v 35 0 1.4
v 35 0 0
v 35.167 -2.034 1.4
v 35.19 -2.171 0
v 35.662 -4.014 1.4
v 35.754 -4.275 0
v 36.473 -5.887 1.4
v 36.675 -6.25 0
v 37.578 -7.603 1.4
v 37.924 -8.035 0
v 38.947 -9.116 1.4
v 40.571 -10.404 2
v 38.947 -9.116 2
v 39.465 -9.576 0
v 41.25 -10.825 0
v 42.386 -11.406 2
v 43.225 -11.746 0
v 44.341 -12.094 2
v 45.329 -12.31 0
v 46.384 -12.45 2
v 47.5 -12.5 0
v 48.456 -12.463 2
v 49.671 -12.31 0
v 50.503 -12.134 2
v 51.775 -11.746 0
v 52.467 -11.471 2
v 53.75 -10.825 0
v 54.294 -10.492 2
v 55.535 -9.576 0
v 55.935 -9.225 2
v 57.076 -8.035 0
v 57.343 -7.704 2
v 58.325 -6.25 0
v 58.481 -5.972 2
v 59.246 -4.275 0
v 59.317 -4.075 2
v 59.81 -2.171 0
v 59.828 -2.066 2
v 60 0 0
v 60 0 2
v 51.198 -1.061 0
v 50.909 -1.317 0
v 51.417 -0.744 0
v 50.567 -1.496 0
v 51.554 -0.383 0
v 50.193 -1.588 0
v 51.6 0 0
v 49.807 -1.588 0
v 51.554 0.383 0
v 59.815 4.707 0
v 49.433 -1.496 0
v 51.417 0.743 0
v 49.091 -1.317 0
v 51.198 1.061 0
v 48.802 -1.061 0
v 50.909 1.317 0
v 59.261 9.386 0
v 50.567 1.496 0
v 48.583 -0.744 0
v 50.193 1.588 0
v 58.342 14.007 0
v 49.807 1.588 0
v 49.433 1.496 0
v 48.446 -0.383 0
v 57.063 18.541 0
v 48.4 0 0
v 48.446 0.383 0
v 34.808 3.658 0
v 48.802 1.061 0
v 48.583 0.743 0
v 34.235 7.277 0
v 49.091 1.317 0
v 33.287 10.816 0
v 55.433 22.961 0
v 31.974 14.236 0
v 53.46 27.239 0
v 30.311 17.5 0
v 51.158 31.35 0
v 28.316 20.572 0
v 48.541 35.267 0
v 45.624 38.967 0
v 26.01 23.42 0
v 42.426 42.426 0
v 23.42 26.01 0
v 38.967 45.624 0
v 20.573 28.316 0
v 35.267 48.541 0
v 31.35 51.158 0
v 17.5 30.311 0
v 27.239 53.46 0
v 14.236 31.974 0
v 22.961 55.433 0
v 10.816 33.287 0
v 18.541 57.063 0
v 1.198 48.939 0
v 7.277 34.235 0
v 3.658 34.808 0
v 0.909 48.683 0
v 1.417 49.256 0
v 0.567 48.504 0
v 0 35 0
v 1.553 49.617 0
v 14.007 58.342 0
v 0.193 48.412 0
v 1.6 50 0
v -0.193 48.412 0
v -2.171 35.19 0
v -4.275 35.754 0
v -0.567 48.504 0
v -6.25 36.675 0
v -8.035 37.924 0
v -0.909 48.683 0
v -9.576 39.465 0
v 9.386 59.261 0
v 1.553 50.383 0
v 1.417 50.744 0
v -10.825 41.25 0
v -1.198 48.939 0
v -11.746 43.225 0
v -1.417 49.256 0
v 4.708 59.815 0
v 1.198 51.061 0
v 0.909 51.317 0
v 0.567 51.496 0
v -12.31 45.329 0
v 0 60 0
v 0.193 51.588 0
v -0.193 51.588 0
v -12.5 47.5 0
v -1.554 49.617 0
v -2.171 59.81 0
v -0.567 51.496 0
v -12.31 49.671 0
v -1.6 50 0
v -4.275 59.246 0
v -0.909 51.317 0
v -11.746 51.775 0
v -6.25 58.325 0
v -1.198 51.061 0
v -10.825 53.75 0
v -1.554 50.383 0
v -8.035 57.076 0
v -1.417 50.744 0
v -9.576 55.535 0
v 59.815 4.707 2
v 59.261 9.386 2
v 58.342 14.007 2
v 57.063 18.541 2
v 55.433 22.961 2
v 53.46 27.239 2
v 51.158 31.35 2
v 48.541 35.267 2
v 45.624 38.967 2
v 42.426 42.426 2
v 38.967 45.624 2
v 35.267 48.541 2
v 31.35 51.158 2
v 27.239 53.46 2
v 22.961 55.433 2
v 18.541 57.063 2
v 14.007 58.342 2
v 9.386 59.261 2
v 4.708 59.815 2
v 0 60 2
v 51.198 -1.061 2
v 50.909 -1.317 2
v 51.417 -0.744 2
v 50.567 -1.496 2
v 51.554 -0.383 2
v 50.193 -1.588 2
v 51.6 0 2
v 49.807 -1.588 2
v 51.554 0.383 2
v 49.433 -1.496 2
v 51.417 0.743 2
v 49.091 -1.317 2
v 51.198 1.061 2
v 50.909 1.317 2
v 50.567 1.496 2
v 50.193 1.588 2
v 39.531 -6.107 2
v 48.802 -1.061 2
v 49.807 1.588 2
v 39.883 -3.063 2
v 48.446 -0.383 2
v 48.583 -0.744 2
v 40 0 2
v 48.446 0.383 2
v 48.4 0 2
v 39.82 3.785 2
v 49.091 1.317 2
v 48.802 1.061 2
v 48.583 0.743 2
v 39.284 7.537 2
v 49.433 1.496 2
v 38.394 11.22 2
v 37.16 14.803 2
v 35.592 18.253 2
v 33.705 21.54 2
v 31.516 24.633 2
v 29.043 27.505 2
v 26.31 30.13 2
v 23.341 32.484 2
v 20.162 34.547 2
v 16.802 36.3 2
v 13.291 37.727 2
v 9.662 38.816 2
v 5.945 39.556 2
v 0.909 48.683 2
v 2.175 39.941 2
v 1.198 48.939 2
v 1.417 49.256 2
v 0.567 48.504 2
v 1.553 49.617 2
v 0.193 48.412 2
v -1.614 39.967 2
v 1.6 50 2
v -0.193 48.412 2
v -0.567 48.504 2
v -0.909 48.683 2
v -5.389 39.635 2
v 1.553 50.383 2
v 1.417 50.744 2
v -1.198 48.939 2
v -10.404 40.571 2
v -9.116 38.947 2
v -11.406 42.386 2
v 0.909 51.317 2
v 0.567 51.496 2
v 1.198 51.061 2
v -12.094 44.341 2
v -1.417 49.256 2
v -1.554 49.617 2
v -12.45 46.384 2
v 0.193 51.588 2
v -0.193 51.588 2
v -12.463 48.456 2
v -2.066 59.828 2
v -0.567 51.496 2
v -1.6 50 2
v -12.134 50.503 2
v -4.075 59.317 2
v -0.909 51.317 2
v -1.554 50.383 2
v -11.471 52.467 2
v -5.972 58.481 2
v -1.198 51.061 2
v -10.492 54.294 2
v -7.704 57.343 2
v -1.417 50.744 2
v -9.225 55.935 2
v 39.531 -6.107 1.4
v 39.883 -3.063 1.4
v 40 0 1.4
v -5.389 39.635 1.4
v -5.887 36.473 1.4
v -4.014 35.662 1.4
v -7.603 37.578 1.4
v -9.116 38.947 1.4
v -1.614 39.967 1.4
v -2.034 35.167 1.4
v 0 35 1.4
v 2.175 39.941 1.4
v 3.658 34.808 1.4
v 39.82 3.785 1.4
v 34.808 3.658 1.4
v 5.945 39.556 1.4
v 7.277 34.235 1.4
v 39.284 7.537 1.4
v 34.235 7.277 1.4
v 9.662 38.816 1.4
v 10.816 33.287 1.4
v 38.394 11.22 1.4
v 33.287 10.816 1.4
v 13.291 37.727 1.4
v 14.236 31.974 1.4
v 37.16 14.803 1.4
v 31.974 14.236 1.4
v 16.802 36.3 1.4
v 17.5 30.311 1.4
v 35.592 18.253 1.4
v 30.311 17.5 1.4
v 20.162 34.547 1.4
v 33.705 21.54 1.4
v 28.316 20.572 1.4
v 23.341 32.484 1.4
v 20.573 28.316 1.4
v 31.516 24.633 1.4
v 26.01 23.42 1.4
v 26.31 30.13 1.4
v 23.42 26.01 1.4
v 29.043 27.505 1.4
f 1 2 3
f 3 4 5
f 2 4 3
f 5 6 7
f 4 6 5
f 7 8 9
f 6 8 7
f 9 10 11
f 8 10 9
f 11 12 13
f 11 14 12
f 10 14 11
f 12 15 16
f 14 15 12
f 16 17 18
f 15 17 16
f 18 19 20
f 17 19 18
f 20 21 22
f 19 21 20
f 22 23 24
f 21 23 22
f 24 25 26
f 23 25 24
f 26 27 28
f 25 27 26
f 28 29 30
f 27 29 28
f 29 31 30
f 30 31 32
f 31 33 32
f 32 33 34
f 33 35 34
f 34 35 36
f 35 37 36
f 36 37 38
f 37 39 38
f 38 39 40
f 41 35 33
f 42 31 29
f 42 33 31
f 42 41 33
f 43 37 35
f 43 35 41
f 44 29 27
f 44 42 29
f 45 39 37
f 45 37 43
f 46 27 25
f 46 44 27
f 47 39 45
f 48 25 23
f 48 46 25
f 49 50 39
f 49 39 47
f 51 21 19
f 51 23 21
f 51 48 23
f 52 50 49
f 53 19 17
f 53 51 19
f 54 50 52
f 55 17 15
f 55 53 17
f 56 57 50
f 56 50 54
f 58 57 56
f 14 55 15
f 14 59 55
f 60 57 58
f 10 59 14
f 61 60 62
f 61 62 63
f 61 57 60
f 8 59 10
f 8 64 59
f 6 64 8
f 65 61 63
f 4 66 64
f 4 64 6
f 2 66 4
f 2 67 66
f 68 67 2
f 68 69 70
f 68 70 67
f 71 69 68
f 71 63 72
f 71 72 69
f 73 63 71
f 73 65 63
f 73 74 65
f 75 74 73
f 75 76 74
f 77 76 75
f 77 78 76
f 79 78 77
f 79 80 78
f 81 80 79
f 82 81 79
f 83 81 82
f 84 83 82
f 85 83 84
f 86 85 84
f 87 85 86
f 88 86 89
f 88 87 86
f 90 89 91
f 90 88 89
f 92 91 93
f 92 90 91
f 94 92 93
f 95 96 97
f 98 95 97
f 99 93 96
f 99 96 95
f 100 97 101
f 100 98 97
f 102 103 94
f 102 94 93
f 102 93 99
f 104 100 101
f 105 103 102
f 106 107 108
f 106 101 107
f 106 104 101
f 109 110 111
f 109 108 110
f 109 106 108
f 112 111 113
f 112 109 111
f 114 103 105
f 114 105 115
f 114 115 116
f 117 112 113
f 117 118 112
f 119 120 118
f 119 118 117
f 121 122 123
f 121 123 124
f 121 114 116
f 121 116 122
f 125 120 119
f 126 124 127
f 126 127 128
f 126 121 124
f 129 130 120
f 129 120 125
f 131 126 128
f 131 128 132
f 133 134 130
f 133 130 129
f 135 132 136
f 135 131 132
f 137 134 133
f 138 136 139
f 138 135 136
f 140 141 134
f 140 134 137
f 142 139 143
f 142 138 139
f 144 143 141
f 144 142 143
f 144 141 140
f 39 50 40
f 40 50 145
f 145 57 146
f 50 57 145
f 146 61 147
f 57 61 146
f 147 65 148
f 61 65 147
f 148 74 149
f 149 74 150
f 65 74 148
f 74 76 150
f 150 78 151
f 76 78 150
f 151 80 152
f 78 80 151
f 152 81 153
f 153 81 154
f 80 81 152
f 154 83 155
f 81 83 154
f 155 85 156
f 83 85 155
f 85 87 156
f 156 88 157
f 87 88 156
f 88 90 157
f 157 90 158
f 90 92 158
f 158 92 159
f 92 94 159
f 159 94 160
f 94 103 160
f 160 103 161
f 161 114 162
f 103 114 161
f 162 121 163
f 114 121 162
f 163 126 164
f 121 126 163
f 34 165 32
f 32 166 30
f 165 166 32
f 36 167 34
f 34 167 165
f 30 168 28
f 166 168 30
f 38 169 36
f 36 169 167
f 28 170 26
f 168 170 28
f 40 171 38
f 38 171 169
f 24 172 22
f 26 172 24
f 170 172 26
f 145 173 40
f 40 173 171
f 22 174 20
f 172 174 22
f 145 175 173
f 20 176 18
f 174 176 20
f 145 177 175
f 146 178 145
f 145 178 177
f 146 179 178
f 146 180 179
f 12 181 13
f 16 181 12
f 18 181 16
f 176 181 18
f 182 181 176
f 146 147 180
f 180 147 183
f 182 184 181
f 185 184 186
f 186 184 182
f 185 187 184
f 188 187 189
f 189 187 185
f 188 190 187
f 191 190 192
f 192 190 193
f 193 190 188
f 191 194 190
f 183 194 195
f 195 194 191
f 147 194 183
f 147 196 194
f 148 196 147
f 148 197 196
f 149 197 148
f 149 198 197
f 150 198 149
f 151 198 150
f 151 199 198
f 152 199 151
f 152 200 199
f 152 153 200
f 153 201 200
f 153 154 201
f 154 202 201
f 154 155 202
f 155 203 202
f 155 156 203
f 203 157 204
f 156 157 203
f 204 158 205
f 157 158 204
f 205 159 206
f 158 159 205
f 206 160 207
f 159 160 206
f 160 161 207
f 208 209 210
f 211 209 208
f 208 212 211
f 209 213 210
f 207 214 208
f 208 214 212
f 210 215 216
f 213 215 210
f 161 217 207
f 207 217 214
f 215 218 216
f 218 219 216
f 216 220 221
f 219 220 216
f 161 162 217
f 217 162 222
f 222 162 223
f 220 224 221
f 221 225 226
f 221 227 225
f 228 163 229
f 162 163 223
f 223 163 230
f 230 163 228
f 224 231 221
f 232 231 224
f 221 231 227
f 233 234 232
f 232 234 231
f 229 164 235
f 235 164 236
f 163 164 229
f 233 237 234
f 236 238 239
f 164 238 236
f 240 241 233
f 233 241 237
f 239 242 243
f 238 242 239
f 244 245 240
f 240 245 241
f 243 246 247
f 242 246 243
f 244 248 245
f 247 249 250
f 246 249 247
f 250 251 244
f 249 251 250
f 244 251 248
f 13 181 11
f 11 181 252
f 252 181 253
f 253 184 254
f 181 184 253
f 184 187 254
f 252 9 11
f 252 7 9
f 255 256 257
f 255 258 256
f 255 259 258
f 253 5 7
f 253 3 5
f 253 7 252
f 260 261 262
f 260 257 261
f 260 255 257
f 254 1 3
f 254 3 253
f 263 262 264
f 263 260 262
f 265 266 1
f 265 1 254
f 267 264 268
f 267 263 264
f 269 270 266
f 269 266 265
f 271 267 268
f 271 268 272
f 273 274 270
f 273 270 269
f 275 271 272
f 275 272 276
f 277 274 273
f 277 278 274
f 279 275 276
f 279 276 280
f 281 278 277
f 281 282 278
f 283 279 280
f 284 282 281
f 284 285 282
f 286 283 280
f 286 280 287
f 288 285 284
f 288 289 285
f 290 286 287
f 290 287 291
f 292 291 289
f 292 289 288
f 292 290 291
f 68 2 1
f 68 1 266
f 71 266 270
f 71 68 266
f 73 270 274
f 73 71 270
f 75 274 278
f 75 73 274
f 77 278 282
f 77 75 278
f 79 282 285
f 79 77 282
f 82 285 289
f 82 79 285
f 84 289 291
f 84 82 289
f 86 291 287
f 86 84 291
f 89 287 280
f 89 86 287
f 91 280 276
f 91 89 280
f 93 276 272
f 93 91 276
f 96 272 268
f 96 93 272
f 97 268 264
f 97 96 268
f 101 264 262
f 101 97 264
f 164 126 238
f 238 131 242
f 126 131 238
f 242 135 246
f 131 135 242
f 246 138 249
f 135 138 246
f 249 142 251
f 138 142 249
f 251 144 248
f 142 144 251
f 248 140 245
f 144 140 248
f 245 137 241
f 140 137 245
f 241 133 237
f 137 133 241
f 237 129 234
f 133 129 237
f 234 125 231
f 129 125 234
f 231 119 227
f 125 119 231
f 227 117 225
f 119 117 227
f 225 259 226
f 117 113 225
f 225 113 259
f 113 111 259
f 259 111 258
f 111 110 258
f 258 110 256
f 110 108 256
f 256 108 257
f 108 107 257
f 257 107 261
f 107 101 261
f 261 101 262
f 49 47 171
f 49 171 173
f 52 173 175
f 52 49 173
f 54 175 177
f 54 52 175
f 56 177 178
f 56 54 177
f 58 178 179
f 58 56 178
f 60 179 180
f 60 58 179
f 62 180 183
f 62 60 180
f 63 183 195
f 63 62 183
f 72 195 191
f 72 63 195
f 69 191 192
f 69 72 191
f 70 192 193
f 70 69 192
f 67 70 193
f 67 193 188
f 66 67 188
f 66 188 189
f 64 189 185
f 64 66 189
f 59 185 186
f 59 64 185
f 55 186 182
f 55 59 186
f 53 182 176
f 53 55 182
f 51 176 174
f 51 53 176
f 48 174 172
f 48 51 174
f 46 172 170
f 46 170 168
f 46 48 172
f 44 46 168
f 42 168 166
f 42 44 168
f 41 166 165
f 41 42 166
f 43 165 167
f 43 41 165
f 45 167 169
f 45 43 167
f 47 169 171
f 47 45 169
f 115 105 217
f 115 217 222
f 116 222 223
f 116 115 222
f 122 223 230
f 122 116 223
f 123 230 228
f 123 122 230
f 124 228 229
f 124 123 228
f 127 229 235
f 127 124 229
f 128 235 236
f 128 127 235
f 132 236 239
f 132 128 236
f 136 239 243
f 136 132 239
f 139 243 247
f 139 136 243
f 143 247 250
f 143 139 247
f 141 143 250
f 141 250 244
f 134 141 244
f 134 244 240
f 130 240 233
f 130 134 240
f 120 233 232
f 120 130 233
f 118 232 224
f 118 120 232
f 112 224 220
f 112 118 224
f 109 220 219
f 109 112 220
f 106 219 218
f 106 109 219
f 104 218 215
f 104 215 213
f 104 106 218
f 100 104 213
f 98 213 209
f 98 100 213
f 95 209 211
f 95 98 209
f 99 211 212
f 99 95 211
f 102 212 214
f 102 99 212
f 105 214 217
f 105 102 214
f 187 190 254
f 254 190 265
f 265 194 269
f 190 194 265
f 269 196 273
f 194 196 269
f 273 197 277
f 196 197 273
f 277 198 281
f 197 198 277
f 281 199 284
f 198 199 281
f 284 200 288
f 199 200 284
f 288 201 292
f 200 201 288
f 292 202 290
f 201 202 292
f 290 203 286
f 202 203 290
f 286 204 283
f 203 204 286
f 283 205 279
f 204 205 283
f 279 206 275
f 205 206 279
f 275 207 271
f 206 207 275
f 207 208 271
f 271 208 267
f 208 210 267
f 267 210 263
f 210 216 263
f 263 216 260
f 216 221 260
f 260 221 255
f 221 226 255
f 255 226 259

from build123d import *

# Parameters (mm, degrees)
SKETCH_R     = 1.6
PAD_DEPTH    = 2
SKETCH001_R  = 40
POCKET_DEPTH = 0.6


with BuildPart() as part:
    # Sketch → Pad (new body)
    with BuildSketch(Plane.XY):
        with BuildLine():
            ThreePointArc((35, -7.3e-05), (24.748759, 24.748716), (-1.3e-05, 35))
            ThreePointArc((0, 60), (-12.5, 47.500006), (-1.3e-05, 35))
            ThreePointArc((60, -0.000125), (42.426451, 42.426363), (0, 60))
            ThreePointArc((35, -7.3e-05), (47.499974, -12.500099), (60, -0.000125))
        make_face()
        with Locations((50, -0.000104)):
            Circle(SKETCH_R, mode=Mode.SUBTRACT)
        with Locations((-1.8e-05, 50)):
            Circle(SKETCH_R, mode=Mode.SUBTRACT)
    extrude(amount=PAD_DEPTH)

    # Sketch001 (on Face8 of Pad) → Pocket (cut)
    with BuildSketch(Plane.XY.offset(2)):
        Circle(SKETCH001_R)
    extrude(amount=-POCKET_DEPTH, mode=Mode.SUBTRACT)


solid = part.part
